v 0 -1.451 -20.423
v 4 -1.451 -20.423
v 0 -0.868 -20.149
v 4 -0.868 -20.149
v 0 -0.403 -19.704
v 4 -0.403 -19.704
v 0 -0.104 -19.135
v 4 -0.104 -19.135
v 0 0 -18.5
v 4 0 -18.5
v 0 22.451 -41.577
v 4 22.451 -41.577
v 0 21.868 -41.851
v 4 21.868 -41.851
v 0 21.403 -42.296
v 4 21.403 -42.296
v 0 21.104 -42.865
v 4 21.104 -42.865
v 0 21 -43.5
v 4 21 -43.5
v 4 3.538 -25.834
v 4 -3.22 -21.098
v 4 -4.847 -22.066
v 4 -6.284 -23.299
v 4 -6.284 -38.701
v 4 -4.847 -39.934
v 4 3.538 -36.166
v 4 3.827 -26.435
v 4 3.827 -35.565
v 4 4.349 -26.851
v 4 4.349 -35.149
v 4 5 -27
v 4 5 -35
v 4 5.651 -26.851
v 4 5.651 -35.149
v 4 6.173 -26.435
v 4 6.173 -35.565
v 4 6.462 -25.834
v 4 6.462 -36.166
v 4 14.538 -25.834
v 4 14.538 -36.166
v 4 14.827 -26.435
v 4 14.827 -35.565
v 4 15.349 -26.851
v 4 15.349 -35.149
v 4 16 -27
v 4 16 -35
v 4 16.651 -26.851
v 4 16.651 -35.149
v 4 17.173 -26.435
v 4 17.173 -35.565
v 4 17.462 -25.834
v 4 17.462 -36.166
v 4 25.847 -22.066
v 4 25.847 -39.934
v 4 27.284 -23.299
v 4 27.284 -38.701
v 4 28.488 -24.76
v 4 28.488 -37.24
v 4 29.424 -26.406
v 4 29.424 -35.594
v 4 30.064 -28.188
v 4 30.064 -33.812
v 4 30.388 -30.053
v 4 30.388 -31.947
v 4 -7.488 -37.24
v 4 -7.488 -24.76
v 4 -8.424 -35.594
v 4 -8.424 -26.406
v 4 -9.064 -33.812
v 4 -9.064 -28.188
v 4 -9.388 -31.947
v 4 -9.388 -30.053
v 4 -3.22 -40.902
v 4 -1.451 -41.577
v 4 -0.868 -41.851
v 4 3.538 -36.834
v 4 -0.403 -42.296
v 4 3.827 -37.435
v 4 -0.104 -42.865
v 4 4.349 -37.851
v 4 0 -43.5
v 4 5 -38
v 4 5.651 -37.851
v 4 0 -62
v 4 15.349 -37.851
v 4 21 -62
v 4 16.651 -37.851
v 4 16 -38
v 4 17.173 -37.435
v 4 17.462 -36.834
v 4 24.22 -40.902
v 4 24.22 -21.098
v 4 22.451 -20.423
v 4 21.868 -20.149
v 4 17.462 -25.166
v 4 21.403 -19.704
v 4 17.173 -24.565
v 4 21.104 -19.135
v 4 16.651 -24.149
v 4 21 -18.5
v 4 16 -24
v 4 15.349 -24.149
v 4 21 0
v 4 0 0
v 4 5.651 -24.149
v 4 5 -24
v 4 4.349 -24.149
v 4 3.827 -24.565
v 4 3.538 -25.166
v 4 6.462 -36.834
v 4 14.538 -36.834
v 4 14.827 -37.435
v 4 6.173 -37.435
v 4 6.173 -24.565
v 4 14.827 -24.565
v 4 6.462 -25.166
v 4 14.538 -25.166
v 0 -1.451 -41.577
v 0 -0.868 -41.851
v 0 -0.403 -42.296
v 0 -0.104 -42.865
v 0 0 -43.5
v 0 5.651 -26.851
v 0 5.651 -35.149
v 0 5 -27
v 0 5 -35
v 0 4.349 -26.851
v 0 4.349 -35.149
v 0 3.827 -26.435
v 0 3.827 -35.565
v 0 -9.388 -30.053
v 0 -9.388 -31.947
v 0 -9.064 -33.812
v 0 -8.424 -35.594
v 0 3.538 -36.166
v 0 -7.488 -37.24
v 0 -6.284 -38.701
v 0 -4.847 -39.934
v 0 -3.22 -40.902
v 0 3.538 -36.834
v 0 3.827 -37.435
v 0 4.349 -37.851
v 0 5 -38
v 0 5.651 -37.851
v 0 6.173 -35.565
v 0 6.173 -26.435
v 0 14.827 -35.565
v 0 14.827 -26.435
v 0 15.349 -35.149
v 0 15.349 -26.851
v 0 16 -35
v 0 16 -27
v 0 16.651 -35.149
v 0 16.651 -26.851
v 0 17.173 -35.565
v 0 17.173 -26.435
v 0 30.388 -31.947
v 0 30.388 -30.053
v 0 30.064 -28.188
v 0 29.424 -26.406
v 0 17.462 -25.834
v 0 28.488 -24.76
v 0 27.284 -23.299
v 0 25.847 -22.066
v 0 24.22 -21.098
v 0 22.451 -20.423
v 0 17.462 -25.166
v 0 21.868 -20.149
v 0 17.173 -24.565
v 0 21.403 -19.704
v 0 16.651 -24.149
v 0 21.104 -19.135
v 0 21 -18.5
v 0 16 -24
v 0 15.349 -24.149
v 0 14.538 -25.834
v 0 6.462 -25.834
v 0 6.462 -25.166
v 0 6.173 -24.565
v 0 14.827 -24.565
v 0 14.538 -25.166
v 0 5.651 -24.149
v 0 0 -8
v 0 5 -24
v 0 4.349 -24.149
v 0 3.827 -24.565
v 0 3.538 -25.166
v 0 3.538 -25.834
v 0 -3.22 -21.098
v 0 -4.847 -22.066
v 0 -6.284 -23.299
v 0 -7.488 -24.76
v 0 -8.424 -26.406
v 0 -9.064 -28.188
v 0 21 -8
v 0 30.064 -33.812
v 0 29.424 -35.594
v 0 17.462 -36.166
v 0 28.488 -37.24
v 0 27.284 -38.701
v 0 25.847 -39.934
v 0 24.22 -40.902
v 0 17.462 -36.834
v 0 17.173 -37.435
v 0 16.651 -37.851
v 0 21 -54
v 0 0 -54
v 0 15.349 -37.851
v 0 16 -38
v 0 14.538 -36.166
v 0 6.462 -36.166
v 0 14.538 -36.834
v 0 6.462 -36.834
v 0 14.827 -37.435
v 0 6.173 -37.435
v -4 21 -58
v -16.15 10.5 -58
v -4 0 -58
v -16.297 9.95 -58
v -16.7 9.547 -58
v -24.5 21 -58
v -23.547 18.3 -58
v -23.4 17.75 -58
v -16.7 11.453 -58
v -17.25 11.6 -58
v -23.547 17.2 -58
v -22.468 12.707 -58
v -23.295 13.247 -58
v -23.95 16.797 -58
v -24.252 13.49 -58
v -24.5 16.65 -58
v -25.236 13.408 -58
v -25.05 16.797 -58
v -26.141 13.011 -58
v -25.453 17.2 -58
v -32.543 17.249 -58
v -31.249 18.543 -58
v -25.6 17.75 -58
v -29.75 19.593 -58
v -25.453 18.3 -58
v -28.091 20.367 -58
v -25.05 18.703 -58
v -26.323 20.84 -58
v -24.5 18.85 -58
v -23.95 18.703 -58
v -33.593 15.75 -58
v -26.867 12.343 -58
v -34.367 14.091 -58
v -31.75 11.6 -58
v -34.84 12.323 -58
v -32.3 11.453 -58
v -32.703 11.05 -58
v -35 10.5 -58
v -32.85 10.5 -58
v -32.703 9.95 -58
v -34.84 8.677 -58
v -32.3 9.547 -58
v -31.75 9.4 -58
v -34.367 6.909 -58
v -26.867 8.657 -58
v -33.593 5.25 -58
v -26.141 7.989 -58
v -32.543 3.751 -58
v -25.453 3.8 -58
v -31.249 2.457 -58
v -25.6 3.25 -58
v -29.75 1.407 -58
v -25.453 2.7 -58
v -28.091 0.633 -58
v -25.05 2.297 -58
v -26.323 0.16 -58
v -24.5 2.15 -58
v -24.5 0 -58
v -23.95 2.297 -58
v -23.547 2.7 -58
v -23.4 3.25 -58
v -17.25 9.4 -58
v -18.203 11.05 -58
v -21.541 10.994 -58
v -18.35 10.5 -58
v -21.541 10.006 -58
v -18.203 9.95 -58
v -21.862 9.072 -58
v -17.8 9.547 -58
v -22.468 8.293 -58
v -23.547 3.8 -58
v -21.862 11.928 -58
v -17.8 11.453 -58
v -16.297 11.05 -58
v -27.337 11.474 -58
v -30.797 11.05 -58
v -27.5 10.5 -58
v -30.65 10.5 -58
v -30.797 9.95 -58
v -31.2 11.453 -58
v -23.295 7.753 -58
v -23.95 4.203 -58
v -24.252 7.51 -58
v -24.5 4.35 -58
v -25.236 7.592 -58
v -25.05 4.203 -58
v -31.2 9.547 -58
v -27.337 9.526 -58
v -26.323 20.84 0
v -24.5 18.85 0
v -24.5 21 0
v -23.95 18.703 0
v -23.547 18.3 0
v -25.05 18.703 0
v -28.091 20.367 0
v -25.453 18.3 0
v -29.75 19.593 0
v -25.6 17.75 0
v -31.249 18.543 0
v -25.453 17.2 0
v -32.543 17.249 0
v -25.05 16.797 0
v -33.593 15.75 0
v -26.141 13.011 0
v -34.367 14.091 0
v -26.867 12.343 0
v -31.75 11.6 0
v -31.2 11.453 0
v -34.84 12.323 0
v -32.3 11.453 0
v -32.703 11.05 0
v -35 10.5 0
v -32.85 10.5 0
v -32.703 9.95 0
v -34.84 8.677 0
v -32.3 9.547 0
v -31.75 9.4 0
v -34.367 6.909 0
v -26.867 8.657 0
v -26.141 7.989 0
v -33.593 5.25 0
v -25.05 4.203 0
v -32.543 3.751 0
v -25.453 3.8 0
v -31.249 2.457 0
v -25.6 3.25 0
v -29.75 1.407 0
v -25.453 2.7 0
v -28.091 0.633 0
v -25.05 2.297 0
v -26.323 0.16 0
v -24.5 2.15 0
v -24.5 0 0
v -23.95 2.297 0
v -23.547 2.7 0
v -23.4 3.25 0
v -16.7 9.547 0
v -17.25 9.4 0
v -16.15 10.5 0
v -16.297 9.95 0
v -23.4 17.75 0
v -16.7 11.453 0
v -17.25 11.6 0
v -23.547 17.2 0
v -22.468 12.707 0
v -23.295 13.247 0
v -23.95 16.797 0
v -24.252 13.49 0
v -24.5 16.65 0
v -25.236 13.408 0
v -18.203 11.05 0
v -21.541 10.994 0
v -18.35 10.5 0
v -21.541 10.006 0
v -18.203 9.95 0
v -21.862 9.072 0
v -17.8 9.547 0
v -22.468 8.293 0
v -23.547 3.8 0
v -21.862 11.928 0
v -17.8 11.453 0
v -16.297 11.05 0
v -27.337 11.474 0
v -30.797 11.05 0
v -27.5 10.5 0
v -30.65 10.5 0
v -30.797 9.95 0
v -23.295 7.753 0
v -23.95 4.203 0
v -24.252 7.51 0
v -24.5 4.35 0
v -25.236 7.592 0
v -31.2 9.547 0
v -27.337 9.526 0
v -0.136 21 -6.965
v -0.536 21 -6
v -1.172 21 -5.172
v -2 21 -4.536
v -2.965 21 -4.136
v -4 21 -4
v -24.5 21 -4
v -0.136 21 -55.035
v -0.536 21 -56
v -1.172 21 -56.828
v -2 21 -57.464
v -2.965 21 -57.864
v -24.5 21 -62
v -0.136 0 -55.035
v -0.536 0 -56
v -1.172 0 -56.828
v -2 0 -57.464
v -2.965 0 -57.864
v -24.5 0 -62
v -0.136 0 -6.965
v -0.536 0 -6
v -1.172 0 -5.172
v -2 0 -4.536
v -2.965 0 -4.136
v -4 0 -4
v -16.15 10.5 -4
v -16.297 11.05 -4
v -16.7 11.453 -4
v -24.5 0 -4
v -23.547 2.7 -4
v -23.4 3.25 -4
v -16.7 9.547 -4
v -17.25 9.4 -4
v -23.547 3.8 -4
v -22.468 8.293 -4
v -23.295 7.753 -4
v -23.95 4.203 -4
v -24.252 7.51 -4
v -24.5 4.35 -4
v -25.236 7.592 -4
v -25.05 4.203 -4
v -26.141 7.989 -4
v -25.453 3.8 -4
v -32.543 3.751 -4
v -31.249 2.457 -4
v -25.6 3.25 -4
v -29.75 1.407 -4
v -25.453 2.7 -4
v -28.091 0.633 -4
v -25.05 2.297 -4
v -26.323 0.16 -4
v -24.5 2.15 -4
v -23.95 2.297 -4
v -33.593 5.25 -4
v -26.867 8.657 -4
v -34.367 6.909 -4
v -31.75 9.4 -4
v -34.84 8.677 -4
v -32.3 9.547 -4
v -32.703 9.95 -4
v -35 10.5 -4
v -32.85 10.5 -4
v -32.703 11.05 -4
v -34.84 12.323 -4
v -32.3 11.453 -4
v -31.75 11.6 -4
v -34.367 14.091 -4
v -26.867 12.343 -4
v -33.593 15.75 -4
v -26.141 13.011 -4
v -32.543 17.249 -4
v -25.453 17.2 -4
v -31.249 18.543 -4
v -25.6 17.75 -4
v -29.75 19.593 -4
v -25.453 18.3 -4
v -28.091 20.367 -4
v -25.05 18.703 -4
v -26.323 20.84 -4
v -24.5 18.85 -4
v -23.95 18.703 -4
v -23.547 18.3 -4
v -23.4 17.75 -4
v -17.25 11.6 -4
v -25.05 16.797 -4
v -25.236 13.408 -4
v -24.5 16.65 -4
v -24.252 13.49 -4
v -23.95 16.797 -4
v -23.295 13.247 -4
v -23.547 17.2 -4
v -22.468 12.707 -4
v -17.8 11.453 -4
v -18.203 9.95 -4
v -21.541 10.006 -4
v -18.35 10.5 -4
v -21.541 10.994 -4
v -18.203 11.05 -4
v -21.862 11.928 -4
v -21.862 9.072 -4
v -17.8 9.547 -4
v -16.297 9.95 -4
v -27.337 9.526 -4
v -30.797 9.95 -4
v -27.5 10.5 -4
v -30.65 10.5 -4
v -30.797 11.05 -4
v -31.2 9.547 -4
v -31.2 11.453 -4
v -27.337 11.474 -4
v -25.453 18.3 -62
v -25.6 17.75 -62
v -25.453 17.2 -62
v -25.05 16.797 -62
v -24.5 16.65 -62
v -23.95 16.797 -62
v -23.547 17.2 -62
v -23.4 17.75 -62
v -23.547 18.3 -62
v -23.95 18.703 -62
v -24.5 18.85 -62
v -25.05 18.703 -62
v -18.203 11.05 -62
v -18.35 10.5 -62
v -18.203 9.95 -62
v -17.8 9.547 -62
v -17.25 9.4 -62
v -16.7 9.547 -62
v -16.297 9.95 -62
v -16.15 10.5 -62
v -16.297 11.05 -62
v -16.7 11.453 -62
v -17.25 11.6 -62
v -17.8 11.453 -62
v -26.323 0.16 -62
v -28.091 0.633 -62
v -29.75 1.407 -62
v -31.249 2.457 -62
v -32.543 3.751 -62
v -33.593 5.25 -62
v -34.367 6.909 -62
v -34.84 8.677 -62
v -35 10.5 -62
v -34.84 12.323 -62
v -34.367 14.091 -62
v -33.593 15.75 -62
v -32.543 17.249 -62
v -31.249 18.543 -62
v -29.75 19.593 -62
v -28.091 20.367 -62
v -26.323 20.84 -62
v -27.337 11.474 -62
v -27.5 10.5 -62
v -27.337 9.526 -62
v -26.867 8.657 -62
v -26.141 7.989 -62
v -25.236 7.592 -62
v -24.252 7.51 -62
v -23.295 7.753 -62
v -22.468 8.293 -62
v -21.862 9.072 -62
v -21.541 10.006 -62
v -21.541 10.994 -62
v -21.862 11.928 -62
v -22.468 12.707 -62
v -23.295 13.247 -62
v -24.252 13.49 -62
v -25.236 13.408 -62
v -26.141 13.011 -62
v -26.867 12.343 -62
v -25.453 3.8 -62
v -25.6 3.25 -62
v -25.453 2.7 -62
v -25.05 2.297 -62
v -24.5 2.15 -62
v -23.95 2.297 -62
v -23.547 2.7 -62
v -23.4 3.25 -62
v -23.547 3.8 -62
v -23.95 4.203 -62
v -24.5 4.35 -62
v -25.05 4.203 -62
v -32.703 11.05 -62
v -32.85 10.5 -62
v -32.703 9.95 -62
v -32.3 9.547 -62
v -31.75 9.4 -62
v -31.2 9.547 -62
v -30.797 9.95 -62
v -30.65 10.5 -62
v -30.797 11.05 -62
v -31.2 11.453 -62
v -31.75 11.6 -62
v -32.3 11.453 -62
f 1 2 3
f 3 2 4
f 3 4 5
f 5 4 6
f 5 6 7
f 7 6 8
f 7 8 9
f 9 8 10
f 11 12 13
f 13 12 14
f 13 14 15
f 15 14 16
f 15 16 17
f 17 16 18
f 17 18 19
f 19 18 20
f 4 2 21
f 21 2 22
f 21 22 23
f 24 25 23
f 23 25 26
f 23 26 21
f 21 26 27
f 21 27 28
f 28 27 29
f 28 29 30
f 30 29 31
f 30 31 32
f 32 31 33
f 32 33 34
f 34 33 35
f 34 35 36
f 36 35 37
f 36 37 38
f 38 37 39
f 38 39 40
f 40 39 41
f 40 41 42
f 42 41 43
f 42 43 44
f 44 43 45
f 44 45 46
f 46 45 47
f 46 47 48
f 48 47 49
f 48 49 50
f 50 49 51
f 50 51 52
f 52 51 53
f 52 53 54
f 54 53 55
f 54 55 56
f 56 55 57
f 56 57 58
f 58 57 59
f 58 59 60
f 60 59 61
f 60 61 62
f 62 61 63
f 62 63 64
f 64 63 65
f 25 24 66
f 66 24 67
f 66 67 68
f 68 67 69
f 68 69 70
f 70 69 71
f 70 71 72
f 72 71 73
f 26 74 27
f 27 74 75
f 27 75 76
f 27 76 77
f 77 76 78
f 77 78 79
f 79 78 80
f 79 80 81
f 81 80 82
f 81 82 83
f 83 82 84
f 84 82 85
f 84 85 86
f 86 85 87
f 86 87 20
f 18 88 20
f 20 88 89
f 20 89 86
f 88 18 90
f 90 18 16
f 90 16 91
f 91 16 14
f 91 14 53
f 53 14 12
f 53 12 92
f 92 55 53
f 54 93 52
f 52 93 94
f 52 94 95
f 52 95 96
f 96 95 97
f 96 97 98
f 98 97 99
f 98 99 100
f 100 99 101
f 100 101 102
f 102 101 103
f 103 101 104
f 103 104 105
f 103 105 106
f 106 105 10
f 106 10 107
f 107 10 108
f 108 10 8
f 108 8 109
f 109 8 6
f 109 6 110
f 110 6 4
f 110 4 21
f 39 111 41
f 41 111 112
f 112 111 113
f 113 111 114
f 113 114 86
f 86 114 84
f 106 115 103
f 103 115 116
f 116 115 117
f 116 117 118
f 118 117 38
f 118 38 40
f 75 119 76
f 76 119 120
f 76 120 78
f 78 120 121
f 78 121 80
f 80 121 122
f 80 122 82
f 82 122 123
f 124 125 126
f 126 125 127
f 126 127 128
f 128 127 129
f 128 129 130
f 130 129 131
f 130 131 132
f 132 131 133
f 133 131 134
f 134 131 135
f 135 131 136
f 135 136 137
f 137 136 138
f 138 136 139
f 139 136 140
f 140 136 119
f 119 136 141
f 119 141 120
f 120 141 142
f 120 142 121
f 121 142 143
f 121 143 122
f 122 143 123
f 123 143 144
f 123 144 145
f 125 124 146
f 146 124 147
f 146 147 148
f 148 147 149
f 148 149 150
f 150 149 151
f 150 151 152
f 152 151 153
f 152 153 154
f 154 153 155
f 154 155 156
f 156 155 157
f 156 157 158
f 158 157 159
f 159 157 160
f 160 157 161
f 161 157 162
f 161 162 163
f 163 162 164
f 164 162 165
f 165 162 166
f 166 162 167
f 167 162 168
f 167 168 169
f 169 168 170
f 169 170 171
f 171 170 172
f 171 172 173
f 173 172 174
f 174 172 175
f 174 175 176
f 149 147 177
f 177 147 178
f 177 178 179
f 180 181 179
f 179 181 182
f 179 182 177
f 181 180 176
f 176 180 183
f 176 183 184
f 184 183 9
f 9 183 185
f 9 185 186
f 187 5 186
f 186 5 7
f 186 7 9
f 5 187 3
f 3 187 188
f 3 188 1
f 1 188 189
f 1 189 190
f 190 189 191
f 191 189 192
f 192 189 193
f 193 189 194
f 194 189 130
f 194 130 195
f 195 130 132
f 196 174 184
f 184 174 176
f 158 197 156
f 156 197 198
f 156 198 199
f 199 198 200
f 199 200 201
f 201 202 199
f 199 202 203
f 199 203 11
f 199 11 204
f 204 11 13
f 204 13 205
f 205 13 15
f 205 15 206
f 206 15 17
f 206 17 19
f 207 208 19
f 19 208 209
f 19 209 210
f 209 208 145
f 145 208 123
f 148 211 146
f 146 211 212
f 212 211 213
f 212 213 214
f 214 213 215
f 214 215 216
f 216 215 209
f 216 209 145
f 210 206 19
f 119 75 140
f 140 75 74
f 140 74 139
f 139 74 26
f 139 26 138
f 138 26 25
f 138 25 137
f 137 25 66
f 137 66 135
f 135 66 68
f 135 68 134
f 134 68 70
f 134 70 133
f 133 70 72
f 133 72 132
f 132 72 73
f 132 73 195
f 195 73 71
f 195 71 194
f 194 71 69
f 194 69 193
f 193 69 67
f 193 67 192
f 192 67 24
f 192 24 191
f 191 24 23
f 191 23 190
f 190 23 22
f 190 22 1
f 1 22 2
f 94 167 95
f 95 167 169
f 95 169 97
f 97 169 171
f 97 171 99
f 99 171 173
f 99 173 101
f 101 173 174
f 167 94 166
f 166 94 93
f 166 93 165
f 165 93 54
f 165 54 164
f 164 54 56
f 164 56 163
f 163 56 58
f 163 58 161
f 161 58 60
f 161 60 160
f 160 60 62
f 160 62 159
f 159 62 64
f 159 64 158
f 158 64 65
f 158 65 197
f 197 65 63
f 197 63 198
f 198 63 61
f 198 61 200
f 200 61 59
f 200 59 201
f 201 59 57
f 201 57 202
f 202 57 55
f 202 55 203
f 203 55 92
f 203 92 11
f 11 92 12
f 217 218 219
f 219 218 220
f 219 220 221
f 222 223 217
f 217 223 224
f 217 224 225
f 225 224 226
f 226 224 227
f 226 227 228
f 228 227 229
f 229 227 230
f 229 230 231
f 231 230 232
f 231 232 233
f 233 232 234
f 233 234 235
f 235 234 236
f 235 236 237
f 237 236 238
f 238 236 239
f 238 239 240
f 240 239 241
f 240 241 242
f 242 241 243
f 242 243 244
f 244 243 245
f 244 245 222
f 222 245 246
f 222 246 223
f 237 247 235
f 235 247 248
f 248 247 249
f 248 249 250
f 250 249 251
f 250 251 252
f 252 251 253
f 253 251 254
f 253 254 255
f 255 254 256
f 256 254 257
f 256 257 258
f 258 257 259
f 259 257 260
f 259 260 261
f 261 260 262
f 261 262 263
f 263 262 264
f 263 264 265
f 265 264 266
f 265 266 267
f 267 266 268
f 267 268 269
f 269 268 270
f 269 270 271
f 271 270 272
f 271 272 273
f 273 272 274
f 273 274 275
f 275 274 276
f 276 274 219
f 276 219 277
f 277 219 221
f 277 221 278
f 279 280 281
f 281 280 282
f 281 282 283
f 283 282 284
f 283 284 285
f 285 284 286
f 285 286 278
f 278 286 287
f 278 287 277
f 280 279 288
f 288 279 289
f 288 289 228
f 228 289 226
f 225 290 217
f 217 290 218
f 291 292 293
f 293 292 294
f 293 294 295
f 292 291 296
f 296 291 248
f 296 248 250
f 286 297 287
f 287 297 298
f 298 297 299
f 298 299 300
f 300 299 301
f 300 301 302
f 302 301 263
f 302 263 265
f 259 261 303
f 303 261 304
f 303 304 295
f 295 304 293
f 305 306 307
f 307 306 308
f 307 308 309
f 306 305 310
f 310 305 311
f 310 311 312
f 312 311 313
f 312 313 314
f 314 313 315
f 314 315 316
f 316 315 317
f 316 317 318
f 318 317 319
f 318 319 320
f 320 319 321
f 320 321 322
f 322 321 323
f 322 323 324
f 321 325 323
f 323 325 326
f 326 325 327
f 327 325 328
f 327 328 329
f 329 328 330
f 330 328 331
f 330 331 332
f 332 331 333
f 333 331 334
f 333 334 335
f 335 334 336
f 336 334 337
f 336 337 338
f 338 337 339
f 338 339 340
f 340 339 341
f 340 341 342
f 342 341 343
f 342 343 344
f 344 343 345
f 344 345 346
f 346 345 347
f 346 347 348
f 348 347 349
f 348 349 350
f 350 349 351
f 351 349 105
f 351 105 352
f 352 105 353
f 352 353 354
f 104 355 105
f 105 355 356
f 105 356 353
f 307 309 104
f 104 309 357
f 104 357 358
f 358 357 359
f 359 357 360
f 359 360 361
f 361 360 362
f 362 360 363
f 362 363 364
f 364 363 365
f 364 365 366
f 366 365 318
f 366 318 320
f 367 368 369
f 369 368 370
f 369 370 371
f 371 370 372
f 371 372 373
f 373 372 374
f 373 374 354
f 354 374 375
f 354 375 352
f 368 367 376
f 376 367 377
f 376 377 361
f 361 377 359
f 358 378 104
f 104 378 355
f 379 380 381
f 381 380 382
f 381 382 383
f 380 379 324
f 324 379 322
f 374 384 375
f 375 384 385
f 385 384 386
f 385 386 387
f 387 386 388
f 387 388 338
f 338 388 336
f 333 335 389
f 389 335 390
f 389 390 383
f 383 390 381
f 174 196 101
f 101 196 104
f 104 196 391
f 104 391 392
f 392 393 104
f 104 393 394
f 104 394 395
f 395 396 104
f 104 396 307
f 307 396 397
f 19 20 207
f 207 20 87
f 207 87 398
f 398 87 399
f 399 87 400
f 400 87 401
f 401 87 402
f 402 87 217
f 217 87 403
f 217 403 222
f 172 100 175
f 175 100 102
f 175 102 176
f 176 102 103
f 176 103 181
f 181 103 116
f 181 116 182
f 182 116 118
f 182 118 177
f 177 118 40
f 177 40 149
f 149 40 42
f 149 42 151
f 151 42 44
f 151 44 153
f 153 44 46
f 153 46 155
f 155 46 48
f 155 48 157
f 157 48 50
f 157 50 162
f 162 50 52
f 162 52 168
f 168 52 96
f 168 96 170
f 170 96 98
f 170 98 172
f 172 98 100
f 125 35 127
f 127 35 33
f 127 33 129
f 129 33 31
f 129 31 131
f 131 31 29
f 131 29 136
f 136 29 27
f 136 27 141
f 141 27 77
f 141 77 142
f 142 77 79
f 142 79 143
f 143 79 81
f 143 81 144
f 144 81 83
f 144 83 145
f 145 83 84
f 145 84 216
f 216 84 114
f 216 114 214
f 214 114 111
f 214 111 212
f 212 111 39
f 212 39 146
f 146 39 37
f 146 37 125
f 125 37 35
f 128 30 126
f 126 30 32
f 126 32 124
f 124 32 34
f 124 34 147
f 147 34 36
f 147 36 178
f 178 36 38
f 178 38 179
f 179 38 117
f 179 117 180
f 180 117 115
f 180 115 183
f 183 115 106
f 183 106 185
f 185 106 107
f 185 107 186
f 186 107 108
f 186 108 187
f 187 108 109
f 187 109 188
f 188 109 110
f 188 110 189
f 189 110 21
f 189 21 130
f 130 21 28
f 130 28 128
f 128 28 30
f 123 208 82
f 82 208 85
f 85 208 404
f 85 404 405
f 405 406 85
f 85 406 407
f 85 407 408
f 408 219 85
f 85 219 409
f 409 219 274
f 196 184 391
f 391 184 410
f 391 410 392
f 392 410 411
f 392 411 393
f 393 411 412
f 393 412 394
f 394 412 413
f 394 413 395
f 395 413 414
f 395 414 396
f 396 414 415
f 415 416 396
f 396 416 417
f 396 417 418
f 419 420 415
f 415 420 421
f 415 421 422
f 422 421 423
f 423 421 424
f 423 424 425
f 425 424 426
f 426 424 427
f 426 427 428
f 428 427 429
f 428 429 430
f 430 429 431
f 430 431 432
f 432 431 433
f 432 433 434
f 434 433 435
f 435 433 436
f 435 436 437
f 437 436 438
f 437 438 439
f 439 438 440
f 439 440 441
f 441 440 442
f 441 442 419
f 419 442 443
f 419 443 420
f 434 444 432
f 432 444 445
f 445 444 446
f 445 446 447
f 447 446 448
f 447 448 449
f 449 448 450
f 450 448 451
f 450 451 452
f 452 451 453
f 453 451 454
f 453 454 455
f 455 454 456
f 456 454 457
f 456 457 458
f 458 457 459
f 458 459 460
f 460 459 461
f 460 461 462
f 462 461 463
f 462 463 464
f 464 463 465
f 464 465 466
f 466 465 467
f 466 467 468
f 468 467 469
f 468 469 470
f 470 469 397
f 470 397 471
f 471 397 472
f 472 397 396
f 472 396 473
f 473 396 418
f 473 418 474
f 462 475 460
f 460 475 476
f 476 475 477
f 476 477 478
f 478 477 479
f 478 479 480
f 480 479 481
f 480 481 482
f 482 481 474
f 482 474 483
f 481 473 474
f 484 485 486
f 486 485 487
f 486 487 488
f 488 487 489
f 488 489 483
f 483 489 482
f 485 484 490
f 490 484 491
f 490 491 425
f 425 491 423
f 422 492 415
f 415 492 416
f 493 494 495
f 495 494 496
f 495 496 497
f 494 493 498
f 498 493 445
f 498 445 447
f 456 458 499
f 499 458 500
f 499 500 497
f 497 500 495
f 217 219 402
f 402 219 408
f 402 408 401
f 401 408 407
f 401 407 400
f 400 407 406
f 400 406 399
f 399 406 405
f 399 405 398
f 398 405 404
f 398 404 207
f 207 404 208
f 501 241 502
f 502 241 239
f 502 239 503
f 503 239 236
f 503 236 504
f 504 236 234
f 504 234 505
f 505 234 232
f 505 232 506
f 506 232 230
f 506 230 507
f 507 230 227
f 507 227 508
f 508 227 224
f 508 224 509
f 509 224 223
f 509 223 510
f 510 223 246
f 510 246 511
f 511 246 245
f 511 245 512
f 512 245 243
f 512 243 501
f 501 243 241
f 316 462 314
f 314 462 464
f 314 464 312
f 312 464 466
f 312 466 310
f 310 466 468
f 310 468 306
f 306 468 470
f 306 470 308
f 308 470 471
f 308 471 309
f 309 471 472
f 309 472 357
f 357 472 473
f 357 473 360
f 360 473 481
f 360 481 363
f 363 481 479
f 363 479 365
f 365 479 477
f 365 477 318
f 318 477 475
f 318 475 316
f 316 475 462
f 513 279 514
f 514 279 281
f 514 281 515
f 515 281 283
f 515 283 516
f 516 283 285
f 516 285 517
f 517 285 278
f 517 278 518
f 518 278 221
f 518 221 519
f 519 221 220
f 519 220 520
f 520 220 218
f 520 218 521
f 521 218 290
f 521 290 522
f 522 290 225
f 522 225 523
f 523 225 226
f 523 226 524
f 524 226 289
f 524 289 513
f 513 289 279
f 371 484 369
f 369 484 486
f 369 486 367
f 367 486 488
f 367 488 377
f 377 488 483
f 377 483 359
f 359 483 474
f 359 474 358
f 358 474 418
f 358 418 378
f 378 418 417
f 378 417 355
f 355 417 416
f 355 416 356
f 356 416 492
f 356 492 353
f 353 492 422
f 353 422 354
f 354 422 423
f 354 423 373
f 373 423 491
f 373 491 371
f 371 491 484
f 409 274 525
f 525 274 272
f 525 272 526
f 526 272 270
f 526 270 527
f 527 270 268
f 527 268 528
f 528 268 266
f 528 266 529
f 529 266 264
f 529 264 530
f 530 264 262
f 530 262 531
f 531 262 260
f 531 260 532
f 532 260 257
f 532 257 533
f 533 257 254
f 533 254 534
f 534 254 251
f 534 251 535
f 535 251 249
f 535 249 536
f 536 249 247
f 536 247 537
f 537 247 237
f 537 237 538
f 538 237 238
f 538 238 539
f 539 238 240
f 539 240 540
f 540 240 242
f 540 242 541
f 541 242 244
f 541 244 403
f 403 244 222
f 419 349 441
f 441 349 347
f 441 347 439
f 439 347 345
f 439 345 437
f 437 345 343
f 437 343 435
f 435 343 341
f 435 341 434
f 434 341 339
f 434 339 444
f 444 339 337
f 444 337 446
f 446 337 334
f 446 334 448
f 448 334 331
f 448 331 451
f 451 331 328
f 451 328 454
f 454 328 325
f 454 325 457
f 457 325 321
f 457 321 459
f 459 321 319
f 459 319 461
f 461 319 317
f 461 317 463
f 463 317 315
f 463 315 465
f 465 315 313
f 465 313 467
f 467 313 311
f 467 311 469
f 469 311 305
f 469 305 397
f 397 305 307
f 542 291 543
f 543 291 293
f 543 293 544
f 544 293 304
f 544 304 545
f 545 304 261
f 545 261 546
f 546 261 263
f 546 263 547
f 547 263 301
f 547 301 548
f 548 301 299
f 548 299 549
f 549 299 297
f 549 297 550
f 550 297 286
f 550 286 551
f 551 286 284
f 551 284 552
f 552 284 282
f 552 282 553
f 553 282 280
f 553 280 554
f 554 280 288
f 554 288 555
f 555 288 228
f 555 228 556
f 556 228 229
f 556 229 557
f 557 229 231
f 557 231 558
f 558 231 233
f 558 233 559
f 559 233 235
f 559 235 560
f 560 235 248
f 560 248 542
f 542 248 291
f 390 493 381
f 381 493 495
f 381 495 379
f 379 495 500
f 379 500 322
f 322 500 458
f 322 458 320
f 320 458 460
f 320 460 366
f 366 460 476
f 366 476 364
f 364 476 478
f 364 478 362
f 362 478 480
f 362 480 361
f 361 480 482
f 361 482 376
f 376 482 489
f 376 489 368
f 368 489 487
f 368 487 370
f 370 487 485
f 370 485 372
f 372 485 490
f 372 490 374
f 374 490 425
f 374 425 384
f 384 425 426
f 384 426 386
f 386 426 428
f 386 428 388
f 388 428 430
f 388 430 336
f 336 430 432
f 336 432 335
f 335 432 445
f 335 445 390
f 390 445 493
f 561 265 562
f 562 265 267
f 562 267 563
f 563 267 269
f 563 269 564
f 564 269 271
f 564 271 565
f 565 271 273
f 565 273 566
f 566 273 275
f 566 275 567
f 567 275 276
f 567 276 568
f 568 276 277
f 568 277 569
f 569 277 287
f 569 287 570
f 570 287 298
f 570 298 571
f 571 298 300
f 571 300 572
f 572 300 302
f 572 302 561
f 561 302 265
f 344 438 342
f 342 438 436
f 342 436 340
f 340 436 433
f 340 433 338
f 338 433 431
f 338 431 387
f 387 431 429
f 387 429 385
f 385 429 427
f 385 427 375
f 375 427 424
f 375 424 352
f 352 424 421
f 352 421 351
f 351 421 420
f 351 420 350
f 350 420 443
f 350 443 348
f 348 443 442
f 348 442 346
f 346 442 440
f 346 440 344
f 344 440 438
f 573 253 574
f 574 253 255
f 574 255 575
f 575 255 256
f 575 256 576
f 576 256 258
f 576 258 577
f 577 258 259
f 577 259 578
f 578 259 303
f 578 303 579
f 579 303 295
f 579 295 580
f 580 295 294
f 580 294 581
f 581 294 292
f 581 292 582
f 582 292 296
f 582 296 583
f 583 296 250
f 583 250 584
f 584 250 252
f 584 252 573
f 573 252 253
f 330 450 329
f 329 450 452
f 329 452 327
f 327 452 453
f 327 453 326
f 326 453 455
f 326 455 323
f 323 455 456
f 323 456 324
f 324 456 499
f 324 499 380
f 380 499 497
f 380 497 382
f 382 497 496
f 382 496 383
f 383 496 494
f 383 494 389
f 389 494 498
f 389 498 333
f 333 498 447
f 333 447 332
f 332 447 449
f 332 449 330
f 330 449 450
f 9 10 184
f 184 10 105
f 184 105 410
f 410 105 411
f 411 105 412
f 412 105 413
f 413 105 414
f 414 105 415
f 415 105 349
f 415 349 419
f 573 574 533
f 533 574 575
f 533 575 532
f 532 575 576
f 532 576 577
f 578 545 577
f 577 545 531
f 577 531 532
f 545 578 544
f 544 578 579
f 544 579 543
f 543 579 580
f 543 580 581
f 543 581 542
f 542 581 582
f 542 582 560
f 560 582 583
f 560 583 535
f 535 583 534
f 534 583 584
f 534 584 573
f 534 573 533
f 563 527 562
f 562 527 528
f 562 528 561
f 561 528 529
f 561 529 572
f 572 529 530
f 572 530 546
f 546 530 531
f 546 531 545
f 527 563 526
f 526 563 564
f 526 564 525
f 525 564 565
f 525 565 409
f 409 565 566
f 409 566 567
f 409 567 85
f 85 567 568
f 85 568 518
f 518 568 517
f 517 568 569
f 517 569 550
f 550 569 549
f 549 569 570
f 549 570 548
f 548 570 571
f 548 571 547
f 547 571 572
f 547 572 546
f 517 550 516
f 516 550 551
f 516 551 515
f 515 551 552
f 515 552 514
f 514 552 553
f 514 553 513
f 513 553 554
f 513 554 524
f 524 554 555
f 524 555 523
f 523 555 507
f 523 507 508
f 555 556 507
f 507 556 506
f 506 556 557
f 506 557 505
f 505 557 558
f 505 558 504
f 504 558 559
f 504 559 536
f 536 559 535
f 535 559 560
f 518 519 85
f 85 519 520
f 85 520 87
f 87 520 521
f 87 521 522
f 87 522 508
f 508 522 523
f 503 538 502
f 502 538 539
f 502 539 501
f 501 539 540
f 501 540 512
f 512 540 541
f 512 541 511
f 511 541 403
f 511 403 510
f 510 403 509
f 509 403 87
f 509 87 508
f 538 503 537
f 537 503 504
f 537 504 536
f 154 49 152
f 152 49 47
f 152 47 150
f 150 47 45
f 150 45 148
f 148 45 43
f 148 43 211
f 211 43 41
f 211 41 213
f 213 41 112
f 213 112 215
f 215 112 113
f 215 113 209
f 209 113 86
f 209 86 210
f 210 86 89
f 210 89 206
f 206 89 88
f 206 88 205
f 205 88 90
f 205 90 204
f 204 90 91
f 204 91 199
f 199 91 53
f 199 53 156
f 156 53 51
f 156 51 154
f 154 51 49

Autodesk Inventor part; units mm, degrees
ref_plane "YZ Plane" through (0, 0, 0) normal (1, 0, 0) x (0, 1, 0)
ref_plane "XZ Plane" through (0, 0, 0) normal (0, 1, 0) x (-1, 0, 0)
ref_plane "XY Plane" through (0, 0, 0) normal (0, 0, 1) x (1, 0, 0)
sketch "Sketch1" plane through (0, 0, 0) normal (0, 1, 0) x (-1, 0, 0)
  line L0 (0, 0) -> (0, -58)
  line L1 (0, -58) -> (35, -58)
  line L2 (35, -58) -> (35, -62)
  line L3 (35, -62) -> (-4, -62)
  line L4 (-4, -62) -> (-4, 0)
  line L5 (-4, 0) -> (0, 0)
  line L6 (0, 0) -> (35, 0)
  line L7 (35, 0) -> (35, -4)
  line L8 (35, -4) -> (0, -4)
  line L9 (0, -4) -> (0, 0)
  dimension "d0" = 58
  dimension "d1" = 35
  dimension "d2" = 4
  dimension "d3" = 39
  dimension "d27" = 35
  dimension "d28" = 4
extrude "Extrusion1" add sketch "Sketch1" along normal blind 21
sketch "Sketch2" plane through (4, 0, 0) normal (1, 0, 0) x (0, 0, -1)
  line L0 (0, 21) -> (62, 21) projected
  line L1 (0, 21) -> (25.5, 21)
  line L2 (25.5, 21) -> (25.5, 16)
  line L3 (25.5, 16) -> (0, 16)
  line L4 (0, 16) -> (0, 21)
  line L5 (25.5, 16) -> (36.5, 16)
  line L6 (36.5, 16) -> (36.5, 5)
  line L7 (36.5, 5) -> (25.5, 5)
  line L8 (25.5, 5) -> (25.5, 16)
  circle A0 centre (25.5, 16) radius 1.5
  circle A1 centre (36.5, 16) radius 1.5
  circle A2 centre (25.5, 5) radius 1.5
  circle A3 centre (36.5, 5) radius 1.5
  point P0 (0, 0)
  dimension "d6" = 25.5
  dimension "d7" = 5
  dimension "d8" = 11
  dimension "d9" = 11
  dimension "d10" = 3
  dimension "d11" = 3
  dimension "d12" = 3
  dimension "d13" = 3
extrude "Extrusion2" cut sketch "Sketch2" against normal blind 21 contours A0 L5 L2 | L2 L3 A0 | L3 L8 A0 | L5 A0 L8 | A1 L6 L5 | L5 L6 A1 | A2 L7 L8 | L8 L7 A2 | A3 L7 L6 | L6 L7 A3
sketch "Sketch3" plane through (-35, 0, -58) normal (0, 0, 1) x (1, 0, 0)
  line L0 (0, 0) -> (0, 21) projected
  line L1 (0, 10.5) -> (10.5, 10.5)
  circle A0 centre (10.5, 10.5) radius 10.5
  line L2 (0, 21) -> (10.5, 21)
  line L3 (10.5, 21) -> (10.5, 0)
  line L4 (10.5, 0) -> (0, 0)
  line L5 (0, 0) -> (0, 21)
  circle A1 centre (10.5, 10.5) radius 8
  circle A2 centre (10.5, 10.5) radius 6.5
  line L6 (10.5, 18.5) -> (10.5, 17)
  line L7 (10.5, 4) -> (10.5, 2.5)
  line L8 (2.5, 10.5) -> (4, 10.5)
  line L9 (10.5, 10.5) -> (18.5, 10.5)
  line L10 (18.5, 10.5) -> (17, 10.5)
  circle A3 centre (10.5, 17.75) radius 1.1
  circle A4 centre (3.25, 10.5) radius 1.1
  circle A5 centre (17.75, 10.5) radius 1.1
  circle A6 centre (10.5, 3.25) radius 1.1
  circle A7 centre (10.5, 10.5) radius 3
  point P0 (35, 0)
  point P1 (10.5, 21)
  dimension "d16" = 10.5
  dimension "d17" = 16
  dimension "d18" = 13
  dimension "d19" = 2.2
  dimension "d20" = 2.2
  dimension "d21" = 2.2
  dimension "d22" = 2.2
  dimension "d23" = 6
extrude "Extrusion3" cut sketch "Sketch3" along normal mid plane 1000 contours L0 A0 L4 | L0 L2 A0 | A4 A1 L1 | L1 A1 A4 | A6 A1 L3 | L3 A1 A6 | A1 A4 A2 L1 | L1 A2 A4 A1 | A3 A1 L3 | L3 A1 A3 | A1 A6 A2 L3 | L3 A2 A6 A1 | A2 A4 L1 | L1 A4 A2 | A1 L3 A2 A3 | A1 A3 A2 L3 | A2 A6 L3 | L3 A6 A2 | A5 A2 L9 A1 | A1 A5 | A2 L3 A3 | A2 A3 L3 | A1 L9 A2 A5 | A5 L9 A2 | A7 L3 L1 | L1 L3 A7 | A2 L9 A5 | L3 L9 A7 | L3 A7 L9
fillet "Fillet1" radius 4 2 edges at (0, 10.5, -58) (0, 10.5, -4)
sketch "Sketch4" plane through (4, 0, 0) normal (1, 0, 0) x (0, 0, -1)
  circle A0 centre (25.5, 16) radius 1.5 projected
  line L0 (25.5, 16) -> (20.5, 16)
  line L1 (20.5, 16) -> (41.5, 16)
  line L2 (20.5, 16) -> (41.5, 16)
  line L3 (41.5, 16) -> (41.5, 31)
  line L4 (41.5, 31) -> (20.5, 31)
  line L5 (20.5, 31) -> (20.5, 16)
  circle A1 centre (25.5, 5) radius 1.5 projected
  line L6 (25.5, 5) -> (20.5, 5)
  circle A2 centre (36.5, 5) radius 1.5 projected
  line L7 (20.5, 5) -> (36.5, 5)
  line L8 (36.5, 5) -> (41.5, 5)
  line L9 (20.5, 5) -> (41.5, 5)
  line L10 (41.5, 5) -> (41.5, -10)
  line L11 (41.5, -10) -> (20.5, -10)
  line L12 (20.5, -10) -> (20.5, 5)
  line L13 (0, 21) -> (62, 21) projected
  line L14 (20.5, 31) -> (41.5, 31)
  line L15 (41.5, 31) -> (41.5, 21)
  line L16 (41.5, 21) -> (20.5, 21)
  line L17 (20.5, 21) -> (20.5, 31)
  line L18 (41.5, -10) -> (20.5, -10)
  line L19 (20.5, -10) -> (20.5, -2.5)
  line L20 (41.5, -2.5) -> (41.5, -10)
  line L21 (20.5, -10) -> (41.5, -10)
  line L22 (41.5, -10) -> (41.5, 0)
  line L23 (41.5, 0) -> (20.5, 0)
  line L24 (20.5, 0) -> (20.5, -10)
  line L25 (20.5, 31) -> (41.5, 31)
  line L26 (41.5, 31) -> (41.5, 21)
  line L27 (41.5, 21) -> (20.5, 21)
  line L28 (20.5, 21) -> (20.5, 31)
  point P0 (0, 0)
  point P1 (38, 5)
  point P2 (35, 5)
  point P3 (27, 5)
  point P4 (24, 5)
  dimension "d29" = 5
  dimension "d30" = 21
  dimension "d31" = 15
  dimension "d32" = 15
extrude "Extrusion4" add sketch "Sketch4" against normal blind 4 contours L13 L5 L4 L3 | L7 A2 L8 L10 L23 L12 L6 A1 | L23 L10 L11 L12
fillet "Fillet2" radius 2 4 edges at (2, 21, -41.5) (2, 21, -20.5) (2, 0, -41.5) (2, 0, -20.5)
fillet "Fillet3" radius 11 4 edges at (2, 31, -20.5) (2, 31, -41.5) (2, -10, -20.5) (2, -10, -41.5)
properties part number "L2"
